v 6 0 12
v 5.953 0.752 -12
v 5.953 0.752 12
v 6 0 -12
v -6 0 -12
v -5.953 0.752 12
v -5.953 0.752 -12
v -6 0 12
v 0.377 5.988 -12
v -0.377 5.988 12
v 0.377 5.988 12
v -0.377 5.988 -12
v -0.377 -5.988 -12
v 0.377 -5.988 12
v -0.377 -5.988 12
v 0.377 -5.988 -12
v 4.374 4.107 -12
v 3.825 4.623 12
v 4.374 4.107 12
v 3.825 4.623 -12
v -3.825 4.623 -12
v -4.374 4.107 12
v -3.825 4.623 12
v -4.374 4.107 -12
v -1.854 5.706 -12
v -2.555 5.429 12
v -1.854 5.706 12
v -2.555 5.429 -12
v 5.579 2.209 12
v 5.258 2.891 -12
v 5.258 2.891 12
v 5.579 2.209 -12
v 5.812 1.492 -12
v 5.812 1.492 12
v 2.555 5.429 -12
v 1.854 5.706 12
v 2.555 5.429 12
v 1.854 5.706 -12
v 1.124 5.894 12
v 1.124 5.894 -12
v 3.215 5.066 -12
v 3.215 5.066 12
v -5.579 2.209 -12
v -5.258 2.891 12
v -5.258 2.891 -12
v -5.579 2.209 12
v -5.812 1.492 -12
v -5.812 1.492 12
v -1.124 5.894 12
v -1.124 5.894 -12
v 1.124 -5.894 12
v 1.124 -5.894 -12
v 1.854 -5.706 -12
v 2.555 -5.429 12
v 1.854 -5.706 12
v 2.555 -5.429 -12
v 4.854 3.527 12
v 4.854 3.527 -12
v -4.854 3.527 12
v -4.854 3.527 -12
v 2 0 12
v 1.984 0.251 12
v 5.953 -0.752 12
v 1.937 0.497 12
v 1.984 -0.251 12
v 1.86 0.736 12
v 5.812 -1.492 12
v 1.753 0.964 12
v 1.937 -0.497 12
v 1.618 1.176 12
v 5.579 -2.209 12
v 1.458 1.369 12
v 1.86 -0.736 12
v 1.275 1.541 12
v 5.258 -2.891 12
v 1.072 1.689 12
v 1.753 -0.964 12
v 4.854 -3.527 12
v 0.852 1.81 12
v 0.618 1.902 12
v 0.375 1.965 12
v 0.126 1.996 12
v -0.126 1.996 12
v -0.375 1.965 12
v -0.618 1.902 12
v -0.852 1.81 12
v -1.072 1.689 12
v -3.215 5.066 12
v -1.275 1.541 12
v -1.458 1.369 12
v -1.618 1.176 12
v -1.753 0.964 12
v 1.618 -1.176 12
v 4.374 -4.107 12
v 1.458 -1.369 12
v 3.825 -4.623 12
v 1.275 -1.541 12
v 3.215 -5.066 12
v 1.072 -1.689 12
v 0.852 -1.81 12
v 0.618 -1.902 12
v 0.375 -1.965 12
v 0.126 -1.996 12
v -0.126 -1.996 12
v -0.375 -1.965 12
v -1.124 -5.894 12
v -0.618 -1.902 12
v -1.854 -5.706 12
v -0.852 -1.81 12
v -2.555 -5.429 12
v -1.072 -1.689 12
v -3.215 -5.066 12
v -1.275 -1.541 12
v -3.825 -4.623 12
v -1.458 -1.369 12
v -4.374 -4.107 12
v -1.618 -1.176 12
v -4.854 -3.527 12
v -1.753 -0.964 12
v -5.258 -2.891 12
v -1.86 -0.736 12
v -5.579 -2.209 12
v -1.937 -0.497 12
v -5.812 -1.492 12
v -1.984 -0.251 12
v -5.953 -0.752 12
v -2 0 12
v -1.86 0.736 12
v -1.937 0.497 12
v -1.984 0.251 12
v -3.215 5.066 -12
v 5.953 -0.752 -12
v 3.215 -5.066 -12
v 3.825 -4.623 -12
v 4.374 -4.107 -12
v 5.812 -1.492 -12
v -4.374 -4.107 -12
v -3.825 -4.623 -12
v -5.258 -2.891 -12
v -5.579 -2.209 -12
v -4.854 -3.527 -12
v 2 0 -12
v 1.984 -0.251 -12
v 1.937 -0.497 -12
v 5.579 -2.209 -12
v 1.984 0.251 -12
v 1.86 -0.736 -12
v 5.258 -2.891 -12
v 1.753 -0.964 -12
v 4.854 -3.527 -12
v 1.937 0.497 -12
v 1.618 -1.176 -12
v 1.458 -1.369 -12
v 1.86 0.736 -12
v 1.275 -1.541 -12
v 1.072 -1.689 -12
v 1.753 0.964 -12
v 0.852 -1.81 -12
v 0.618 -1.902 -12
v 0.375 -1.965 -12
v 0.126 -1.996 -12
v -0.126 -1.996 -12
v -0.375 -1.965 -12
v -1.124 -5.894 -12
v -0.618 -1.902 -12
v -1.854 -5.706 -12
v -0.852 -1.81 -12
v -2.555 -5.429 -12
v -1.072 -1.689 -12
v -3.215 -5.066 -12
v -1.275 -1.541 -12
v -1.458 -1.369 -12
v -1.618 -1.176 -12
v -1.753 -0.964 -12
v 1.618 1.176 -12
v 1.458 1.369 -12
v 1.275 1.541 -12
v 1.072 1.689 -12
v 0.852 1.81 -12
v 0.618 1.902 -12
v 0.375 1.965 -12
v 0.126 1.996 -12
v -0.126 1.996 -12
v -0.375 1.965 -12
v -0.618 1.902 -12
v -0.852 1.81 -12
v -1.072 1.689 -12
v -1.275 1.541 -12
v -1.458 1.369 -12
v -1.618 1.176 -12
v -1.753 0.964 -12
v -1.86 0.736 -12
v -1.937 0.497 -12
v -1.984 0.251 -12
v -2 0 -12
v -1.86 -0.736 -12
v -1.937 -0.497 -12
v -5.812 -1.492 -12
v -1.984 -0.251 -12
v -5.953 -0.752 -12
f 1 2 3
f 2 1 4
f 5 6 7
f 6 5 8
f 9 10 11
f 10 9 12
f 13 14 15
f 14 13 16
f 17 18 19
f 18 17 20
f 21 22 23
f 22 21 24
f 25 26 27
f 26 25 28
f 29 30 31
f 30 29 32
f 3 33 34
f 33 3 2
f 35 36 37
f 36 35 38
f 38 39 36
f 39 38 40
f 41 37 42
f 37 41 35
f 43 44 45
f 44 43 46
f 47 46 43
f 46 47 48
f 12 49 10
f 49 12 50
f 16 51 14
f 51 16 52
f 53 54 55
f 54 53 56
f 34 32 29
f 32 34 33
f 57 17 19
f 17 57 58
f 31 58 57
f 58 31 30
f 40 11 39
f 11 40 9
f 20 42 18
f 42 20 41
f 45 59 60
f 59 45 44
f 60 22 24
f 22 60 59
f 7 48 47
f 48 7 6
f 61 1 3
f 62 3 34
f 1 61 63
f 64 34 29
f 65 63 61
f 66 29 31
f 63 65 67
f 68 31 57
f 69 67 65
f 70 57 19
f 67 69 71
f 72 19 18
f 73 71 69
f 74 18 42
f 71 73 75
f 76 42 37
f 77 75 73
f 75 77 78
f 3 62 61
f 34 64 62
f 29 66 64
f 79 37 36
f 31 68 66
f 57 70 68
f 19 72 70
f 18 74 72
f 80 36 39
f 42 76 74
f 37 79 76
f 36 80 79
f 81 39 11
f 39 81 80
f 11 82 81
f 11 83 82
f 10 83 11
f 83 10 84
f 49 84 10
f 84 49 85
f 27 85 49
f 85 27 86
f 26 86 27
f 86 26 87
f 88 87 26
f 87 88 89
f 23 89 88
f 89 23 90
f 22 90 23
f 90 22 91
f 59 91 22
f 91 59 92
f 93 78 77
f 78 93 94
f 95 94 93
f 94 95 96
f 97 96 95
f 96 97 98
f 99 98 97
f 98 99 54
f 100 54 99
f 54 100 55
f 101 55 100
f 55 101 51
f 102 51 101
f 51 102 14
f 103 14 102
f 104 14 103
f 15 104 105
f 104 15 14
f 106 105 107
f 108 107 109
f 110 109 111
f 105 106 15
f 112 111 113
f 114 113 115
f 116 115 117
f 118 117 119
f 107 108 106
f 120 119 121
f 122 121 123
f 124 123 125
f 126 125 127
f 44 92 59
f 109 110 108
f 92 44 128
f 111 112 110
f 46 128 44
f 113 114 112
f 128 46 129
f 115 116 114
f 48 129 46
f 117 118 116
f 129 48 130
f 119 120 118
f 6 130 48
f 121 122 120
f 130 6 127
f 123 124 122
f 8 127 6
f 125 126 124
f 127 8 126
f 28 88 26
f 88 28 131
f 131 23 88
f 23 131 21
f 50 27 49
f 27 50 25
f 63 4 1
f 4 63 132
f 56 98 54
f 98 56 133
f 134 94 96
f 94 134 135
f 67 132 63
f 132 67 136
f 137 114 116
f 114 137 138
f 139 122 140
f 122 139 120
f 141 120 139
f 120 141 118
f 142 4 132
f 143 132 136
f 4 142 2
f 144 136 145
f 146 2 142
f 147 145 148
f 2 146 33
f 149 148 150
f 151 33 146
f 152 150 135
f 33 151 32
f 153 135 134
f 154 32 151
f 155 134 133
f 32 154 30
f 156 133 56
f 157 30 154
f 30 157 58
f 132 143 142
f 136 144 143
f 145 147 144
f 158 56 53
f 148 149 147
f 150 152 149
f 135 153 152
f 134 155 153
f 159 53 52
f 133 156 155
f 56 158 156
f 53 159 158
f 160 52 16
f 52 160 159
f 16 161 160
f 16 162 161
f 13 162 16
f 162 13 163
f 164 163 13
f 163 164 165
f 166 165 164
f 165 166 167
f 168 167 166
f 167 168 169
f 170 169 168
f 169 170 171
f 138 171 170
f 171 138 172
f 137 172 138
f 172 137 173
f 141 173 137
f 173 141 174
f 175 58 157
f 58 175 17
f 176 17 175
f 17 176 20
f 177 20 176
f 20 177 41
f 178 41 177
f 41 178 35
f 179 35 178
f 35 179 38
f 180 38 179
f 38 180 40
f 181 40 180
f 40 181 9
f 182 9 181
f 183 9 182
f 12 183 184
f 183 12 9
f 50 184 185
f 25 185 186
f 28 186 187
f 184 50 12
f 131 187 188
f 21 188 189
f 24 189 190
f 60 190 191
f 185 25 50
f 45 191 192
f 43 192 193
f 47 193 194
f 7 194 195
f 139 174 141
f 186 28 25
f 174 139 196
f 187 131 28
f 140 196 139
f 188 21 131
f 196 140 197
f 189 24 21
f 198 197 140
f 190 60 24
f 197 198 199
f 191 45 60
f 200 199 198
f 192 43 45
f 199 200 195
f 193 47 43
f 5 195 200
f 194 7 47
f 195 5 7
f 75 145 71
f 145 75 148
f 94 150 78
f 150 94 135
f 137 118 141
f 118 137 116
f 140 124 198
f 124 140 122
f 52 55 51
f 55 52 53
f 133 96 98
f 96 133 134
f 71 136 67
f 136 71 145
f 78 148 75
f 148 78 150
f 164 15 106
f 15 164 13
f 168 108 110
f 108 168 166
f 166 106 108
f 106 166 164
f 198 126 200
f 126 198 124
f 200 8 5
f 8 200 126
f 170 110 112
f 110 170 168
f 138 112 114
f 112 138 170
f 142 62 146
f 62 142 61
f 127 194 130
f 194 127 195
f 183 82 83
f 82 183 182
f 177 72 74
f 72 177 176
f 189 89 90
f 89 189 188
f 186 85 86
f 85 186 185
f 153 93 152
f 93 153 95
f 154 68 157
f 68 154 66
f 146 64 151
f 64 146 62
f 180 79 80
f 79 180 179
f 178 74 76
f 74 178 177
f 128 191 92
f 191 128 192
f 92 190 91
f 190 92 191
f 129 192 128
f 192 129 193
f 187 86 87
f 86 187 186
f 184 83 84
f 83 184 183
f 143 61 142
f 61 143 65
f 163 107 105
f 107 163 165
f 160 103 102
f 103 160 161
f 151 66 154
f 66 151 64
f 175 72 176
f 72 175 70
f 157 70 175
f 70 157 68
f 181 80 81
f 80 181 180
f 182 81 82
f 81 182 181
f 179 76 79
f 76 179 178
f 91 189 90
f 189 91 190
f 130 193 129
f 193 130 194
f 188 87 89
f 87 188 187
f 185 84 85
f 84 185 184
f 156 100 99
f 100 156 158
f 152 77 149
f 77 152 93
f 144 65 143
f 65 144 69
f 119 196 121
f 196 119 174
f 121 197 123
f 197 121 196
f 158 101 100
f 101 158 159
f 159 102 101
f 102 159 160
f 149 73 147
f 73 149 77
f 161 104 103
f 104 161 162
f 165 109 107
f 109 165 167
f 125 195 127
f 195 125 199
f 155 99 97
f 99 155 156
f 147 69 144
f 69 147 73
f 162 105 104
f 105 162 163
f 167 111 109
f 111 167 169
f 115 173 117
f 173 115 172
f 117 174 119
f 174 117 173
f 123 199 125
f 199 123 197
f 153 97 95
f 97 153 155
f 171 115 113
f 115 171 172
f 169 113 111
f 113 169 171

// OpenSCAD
$fn = 50;


difference() {
	union() {
		translate(v = [0, 0, -12.0000000000]) {
			cylinder(h = 24, r = 6.0000000000);
		}
	}
	union() {
		translate(v = [0, 0, -100.0000000000]) {
			cylinder(h = 200, r = 2);
		}
	}
}
